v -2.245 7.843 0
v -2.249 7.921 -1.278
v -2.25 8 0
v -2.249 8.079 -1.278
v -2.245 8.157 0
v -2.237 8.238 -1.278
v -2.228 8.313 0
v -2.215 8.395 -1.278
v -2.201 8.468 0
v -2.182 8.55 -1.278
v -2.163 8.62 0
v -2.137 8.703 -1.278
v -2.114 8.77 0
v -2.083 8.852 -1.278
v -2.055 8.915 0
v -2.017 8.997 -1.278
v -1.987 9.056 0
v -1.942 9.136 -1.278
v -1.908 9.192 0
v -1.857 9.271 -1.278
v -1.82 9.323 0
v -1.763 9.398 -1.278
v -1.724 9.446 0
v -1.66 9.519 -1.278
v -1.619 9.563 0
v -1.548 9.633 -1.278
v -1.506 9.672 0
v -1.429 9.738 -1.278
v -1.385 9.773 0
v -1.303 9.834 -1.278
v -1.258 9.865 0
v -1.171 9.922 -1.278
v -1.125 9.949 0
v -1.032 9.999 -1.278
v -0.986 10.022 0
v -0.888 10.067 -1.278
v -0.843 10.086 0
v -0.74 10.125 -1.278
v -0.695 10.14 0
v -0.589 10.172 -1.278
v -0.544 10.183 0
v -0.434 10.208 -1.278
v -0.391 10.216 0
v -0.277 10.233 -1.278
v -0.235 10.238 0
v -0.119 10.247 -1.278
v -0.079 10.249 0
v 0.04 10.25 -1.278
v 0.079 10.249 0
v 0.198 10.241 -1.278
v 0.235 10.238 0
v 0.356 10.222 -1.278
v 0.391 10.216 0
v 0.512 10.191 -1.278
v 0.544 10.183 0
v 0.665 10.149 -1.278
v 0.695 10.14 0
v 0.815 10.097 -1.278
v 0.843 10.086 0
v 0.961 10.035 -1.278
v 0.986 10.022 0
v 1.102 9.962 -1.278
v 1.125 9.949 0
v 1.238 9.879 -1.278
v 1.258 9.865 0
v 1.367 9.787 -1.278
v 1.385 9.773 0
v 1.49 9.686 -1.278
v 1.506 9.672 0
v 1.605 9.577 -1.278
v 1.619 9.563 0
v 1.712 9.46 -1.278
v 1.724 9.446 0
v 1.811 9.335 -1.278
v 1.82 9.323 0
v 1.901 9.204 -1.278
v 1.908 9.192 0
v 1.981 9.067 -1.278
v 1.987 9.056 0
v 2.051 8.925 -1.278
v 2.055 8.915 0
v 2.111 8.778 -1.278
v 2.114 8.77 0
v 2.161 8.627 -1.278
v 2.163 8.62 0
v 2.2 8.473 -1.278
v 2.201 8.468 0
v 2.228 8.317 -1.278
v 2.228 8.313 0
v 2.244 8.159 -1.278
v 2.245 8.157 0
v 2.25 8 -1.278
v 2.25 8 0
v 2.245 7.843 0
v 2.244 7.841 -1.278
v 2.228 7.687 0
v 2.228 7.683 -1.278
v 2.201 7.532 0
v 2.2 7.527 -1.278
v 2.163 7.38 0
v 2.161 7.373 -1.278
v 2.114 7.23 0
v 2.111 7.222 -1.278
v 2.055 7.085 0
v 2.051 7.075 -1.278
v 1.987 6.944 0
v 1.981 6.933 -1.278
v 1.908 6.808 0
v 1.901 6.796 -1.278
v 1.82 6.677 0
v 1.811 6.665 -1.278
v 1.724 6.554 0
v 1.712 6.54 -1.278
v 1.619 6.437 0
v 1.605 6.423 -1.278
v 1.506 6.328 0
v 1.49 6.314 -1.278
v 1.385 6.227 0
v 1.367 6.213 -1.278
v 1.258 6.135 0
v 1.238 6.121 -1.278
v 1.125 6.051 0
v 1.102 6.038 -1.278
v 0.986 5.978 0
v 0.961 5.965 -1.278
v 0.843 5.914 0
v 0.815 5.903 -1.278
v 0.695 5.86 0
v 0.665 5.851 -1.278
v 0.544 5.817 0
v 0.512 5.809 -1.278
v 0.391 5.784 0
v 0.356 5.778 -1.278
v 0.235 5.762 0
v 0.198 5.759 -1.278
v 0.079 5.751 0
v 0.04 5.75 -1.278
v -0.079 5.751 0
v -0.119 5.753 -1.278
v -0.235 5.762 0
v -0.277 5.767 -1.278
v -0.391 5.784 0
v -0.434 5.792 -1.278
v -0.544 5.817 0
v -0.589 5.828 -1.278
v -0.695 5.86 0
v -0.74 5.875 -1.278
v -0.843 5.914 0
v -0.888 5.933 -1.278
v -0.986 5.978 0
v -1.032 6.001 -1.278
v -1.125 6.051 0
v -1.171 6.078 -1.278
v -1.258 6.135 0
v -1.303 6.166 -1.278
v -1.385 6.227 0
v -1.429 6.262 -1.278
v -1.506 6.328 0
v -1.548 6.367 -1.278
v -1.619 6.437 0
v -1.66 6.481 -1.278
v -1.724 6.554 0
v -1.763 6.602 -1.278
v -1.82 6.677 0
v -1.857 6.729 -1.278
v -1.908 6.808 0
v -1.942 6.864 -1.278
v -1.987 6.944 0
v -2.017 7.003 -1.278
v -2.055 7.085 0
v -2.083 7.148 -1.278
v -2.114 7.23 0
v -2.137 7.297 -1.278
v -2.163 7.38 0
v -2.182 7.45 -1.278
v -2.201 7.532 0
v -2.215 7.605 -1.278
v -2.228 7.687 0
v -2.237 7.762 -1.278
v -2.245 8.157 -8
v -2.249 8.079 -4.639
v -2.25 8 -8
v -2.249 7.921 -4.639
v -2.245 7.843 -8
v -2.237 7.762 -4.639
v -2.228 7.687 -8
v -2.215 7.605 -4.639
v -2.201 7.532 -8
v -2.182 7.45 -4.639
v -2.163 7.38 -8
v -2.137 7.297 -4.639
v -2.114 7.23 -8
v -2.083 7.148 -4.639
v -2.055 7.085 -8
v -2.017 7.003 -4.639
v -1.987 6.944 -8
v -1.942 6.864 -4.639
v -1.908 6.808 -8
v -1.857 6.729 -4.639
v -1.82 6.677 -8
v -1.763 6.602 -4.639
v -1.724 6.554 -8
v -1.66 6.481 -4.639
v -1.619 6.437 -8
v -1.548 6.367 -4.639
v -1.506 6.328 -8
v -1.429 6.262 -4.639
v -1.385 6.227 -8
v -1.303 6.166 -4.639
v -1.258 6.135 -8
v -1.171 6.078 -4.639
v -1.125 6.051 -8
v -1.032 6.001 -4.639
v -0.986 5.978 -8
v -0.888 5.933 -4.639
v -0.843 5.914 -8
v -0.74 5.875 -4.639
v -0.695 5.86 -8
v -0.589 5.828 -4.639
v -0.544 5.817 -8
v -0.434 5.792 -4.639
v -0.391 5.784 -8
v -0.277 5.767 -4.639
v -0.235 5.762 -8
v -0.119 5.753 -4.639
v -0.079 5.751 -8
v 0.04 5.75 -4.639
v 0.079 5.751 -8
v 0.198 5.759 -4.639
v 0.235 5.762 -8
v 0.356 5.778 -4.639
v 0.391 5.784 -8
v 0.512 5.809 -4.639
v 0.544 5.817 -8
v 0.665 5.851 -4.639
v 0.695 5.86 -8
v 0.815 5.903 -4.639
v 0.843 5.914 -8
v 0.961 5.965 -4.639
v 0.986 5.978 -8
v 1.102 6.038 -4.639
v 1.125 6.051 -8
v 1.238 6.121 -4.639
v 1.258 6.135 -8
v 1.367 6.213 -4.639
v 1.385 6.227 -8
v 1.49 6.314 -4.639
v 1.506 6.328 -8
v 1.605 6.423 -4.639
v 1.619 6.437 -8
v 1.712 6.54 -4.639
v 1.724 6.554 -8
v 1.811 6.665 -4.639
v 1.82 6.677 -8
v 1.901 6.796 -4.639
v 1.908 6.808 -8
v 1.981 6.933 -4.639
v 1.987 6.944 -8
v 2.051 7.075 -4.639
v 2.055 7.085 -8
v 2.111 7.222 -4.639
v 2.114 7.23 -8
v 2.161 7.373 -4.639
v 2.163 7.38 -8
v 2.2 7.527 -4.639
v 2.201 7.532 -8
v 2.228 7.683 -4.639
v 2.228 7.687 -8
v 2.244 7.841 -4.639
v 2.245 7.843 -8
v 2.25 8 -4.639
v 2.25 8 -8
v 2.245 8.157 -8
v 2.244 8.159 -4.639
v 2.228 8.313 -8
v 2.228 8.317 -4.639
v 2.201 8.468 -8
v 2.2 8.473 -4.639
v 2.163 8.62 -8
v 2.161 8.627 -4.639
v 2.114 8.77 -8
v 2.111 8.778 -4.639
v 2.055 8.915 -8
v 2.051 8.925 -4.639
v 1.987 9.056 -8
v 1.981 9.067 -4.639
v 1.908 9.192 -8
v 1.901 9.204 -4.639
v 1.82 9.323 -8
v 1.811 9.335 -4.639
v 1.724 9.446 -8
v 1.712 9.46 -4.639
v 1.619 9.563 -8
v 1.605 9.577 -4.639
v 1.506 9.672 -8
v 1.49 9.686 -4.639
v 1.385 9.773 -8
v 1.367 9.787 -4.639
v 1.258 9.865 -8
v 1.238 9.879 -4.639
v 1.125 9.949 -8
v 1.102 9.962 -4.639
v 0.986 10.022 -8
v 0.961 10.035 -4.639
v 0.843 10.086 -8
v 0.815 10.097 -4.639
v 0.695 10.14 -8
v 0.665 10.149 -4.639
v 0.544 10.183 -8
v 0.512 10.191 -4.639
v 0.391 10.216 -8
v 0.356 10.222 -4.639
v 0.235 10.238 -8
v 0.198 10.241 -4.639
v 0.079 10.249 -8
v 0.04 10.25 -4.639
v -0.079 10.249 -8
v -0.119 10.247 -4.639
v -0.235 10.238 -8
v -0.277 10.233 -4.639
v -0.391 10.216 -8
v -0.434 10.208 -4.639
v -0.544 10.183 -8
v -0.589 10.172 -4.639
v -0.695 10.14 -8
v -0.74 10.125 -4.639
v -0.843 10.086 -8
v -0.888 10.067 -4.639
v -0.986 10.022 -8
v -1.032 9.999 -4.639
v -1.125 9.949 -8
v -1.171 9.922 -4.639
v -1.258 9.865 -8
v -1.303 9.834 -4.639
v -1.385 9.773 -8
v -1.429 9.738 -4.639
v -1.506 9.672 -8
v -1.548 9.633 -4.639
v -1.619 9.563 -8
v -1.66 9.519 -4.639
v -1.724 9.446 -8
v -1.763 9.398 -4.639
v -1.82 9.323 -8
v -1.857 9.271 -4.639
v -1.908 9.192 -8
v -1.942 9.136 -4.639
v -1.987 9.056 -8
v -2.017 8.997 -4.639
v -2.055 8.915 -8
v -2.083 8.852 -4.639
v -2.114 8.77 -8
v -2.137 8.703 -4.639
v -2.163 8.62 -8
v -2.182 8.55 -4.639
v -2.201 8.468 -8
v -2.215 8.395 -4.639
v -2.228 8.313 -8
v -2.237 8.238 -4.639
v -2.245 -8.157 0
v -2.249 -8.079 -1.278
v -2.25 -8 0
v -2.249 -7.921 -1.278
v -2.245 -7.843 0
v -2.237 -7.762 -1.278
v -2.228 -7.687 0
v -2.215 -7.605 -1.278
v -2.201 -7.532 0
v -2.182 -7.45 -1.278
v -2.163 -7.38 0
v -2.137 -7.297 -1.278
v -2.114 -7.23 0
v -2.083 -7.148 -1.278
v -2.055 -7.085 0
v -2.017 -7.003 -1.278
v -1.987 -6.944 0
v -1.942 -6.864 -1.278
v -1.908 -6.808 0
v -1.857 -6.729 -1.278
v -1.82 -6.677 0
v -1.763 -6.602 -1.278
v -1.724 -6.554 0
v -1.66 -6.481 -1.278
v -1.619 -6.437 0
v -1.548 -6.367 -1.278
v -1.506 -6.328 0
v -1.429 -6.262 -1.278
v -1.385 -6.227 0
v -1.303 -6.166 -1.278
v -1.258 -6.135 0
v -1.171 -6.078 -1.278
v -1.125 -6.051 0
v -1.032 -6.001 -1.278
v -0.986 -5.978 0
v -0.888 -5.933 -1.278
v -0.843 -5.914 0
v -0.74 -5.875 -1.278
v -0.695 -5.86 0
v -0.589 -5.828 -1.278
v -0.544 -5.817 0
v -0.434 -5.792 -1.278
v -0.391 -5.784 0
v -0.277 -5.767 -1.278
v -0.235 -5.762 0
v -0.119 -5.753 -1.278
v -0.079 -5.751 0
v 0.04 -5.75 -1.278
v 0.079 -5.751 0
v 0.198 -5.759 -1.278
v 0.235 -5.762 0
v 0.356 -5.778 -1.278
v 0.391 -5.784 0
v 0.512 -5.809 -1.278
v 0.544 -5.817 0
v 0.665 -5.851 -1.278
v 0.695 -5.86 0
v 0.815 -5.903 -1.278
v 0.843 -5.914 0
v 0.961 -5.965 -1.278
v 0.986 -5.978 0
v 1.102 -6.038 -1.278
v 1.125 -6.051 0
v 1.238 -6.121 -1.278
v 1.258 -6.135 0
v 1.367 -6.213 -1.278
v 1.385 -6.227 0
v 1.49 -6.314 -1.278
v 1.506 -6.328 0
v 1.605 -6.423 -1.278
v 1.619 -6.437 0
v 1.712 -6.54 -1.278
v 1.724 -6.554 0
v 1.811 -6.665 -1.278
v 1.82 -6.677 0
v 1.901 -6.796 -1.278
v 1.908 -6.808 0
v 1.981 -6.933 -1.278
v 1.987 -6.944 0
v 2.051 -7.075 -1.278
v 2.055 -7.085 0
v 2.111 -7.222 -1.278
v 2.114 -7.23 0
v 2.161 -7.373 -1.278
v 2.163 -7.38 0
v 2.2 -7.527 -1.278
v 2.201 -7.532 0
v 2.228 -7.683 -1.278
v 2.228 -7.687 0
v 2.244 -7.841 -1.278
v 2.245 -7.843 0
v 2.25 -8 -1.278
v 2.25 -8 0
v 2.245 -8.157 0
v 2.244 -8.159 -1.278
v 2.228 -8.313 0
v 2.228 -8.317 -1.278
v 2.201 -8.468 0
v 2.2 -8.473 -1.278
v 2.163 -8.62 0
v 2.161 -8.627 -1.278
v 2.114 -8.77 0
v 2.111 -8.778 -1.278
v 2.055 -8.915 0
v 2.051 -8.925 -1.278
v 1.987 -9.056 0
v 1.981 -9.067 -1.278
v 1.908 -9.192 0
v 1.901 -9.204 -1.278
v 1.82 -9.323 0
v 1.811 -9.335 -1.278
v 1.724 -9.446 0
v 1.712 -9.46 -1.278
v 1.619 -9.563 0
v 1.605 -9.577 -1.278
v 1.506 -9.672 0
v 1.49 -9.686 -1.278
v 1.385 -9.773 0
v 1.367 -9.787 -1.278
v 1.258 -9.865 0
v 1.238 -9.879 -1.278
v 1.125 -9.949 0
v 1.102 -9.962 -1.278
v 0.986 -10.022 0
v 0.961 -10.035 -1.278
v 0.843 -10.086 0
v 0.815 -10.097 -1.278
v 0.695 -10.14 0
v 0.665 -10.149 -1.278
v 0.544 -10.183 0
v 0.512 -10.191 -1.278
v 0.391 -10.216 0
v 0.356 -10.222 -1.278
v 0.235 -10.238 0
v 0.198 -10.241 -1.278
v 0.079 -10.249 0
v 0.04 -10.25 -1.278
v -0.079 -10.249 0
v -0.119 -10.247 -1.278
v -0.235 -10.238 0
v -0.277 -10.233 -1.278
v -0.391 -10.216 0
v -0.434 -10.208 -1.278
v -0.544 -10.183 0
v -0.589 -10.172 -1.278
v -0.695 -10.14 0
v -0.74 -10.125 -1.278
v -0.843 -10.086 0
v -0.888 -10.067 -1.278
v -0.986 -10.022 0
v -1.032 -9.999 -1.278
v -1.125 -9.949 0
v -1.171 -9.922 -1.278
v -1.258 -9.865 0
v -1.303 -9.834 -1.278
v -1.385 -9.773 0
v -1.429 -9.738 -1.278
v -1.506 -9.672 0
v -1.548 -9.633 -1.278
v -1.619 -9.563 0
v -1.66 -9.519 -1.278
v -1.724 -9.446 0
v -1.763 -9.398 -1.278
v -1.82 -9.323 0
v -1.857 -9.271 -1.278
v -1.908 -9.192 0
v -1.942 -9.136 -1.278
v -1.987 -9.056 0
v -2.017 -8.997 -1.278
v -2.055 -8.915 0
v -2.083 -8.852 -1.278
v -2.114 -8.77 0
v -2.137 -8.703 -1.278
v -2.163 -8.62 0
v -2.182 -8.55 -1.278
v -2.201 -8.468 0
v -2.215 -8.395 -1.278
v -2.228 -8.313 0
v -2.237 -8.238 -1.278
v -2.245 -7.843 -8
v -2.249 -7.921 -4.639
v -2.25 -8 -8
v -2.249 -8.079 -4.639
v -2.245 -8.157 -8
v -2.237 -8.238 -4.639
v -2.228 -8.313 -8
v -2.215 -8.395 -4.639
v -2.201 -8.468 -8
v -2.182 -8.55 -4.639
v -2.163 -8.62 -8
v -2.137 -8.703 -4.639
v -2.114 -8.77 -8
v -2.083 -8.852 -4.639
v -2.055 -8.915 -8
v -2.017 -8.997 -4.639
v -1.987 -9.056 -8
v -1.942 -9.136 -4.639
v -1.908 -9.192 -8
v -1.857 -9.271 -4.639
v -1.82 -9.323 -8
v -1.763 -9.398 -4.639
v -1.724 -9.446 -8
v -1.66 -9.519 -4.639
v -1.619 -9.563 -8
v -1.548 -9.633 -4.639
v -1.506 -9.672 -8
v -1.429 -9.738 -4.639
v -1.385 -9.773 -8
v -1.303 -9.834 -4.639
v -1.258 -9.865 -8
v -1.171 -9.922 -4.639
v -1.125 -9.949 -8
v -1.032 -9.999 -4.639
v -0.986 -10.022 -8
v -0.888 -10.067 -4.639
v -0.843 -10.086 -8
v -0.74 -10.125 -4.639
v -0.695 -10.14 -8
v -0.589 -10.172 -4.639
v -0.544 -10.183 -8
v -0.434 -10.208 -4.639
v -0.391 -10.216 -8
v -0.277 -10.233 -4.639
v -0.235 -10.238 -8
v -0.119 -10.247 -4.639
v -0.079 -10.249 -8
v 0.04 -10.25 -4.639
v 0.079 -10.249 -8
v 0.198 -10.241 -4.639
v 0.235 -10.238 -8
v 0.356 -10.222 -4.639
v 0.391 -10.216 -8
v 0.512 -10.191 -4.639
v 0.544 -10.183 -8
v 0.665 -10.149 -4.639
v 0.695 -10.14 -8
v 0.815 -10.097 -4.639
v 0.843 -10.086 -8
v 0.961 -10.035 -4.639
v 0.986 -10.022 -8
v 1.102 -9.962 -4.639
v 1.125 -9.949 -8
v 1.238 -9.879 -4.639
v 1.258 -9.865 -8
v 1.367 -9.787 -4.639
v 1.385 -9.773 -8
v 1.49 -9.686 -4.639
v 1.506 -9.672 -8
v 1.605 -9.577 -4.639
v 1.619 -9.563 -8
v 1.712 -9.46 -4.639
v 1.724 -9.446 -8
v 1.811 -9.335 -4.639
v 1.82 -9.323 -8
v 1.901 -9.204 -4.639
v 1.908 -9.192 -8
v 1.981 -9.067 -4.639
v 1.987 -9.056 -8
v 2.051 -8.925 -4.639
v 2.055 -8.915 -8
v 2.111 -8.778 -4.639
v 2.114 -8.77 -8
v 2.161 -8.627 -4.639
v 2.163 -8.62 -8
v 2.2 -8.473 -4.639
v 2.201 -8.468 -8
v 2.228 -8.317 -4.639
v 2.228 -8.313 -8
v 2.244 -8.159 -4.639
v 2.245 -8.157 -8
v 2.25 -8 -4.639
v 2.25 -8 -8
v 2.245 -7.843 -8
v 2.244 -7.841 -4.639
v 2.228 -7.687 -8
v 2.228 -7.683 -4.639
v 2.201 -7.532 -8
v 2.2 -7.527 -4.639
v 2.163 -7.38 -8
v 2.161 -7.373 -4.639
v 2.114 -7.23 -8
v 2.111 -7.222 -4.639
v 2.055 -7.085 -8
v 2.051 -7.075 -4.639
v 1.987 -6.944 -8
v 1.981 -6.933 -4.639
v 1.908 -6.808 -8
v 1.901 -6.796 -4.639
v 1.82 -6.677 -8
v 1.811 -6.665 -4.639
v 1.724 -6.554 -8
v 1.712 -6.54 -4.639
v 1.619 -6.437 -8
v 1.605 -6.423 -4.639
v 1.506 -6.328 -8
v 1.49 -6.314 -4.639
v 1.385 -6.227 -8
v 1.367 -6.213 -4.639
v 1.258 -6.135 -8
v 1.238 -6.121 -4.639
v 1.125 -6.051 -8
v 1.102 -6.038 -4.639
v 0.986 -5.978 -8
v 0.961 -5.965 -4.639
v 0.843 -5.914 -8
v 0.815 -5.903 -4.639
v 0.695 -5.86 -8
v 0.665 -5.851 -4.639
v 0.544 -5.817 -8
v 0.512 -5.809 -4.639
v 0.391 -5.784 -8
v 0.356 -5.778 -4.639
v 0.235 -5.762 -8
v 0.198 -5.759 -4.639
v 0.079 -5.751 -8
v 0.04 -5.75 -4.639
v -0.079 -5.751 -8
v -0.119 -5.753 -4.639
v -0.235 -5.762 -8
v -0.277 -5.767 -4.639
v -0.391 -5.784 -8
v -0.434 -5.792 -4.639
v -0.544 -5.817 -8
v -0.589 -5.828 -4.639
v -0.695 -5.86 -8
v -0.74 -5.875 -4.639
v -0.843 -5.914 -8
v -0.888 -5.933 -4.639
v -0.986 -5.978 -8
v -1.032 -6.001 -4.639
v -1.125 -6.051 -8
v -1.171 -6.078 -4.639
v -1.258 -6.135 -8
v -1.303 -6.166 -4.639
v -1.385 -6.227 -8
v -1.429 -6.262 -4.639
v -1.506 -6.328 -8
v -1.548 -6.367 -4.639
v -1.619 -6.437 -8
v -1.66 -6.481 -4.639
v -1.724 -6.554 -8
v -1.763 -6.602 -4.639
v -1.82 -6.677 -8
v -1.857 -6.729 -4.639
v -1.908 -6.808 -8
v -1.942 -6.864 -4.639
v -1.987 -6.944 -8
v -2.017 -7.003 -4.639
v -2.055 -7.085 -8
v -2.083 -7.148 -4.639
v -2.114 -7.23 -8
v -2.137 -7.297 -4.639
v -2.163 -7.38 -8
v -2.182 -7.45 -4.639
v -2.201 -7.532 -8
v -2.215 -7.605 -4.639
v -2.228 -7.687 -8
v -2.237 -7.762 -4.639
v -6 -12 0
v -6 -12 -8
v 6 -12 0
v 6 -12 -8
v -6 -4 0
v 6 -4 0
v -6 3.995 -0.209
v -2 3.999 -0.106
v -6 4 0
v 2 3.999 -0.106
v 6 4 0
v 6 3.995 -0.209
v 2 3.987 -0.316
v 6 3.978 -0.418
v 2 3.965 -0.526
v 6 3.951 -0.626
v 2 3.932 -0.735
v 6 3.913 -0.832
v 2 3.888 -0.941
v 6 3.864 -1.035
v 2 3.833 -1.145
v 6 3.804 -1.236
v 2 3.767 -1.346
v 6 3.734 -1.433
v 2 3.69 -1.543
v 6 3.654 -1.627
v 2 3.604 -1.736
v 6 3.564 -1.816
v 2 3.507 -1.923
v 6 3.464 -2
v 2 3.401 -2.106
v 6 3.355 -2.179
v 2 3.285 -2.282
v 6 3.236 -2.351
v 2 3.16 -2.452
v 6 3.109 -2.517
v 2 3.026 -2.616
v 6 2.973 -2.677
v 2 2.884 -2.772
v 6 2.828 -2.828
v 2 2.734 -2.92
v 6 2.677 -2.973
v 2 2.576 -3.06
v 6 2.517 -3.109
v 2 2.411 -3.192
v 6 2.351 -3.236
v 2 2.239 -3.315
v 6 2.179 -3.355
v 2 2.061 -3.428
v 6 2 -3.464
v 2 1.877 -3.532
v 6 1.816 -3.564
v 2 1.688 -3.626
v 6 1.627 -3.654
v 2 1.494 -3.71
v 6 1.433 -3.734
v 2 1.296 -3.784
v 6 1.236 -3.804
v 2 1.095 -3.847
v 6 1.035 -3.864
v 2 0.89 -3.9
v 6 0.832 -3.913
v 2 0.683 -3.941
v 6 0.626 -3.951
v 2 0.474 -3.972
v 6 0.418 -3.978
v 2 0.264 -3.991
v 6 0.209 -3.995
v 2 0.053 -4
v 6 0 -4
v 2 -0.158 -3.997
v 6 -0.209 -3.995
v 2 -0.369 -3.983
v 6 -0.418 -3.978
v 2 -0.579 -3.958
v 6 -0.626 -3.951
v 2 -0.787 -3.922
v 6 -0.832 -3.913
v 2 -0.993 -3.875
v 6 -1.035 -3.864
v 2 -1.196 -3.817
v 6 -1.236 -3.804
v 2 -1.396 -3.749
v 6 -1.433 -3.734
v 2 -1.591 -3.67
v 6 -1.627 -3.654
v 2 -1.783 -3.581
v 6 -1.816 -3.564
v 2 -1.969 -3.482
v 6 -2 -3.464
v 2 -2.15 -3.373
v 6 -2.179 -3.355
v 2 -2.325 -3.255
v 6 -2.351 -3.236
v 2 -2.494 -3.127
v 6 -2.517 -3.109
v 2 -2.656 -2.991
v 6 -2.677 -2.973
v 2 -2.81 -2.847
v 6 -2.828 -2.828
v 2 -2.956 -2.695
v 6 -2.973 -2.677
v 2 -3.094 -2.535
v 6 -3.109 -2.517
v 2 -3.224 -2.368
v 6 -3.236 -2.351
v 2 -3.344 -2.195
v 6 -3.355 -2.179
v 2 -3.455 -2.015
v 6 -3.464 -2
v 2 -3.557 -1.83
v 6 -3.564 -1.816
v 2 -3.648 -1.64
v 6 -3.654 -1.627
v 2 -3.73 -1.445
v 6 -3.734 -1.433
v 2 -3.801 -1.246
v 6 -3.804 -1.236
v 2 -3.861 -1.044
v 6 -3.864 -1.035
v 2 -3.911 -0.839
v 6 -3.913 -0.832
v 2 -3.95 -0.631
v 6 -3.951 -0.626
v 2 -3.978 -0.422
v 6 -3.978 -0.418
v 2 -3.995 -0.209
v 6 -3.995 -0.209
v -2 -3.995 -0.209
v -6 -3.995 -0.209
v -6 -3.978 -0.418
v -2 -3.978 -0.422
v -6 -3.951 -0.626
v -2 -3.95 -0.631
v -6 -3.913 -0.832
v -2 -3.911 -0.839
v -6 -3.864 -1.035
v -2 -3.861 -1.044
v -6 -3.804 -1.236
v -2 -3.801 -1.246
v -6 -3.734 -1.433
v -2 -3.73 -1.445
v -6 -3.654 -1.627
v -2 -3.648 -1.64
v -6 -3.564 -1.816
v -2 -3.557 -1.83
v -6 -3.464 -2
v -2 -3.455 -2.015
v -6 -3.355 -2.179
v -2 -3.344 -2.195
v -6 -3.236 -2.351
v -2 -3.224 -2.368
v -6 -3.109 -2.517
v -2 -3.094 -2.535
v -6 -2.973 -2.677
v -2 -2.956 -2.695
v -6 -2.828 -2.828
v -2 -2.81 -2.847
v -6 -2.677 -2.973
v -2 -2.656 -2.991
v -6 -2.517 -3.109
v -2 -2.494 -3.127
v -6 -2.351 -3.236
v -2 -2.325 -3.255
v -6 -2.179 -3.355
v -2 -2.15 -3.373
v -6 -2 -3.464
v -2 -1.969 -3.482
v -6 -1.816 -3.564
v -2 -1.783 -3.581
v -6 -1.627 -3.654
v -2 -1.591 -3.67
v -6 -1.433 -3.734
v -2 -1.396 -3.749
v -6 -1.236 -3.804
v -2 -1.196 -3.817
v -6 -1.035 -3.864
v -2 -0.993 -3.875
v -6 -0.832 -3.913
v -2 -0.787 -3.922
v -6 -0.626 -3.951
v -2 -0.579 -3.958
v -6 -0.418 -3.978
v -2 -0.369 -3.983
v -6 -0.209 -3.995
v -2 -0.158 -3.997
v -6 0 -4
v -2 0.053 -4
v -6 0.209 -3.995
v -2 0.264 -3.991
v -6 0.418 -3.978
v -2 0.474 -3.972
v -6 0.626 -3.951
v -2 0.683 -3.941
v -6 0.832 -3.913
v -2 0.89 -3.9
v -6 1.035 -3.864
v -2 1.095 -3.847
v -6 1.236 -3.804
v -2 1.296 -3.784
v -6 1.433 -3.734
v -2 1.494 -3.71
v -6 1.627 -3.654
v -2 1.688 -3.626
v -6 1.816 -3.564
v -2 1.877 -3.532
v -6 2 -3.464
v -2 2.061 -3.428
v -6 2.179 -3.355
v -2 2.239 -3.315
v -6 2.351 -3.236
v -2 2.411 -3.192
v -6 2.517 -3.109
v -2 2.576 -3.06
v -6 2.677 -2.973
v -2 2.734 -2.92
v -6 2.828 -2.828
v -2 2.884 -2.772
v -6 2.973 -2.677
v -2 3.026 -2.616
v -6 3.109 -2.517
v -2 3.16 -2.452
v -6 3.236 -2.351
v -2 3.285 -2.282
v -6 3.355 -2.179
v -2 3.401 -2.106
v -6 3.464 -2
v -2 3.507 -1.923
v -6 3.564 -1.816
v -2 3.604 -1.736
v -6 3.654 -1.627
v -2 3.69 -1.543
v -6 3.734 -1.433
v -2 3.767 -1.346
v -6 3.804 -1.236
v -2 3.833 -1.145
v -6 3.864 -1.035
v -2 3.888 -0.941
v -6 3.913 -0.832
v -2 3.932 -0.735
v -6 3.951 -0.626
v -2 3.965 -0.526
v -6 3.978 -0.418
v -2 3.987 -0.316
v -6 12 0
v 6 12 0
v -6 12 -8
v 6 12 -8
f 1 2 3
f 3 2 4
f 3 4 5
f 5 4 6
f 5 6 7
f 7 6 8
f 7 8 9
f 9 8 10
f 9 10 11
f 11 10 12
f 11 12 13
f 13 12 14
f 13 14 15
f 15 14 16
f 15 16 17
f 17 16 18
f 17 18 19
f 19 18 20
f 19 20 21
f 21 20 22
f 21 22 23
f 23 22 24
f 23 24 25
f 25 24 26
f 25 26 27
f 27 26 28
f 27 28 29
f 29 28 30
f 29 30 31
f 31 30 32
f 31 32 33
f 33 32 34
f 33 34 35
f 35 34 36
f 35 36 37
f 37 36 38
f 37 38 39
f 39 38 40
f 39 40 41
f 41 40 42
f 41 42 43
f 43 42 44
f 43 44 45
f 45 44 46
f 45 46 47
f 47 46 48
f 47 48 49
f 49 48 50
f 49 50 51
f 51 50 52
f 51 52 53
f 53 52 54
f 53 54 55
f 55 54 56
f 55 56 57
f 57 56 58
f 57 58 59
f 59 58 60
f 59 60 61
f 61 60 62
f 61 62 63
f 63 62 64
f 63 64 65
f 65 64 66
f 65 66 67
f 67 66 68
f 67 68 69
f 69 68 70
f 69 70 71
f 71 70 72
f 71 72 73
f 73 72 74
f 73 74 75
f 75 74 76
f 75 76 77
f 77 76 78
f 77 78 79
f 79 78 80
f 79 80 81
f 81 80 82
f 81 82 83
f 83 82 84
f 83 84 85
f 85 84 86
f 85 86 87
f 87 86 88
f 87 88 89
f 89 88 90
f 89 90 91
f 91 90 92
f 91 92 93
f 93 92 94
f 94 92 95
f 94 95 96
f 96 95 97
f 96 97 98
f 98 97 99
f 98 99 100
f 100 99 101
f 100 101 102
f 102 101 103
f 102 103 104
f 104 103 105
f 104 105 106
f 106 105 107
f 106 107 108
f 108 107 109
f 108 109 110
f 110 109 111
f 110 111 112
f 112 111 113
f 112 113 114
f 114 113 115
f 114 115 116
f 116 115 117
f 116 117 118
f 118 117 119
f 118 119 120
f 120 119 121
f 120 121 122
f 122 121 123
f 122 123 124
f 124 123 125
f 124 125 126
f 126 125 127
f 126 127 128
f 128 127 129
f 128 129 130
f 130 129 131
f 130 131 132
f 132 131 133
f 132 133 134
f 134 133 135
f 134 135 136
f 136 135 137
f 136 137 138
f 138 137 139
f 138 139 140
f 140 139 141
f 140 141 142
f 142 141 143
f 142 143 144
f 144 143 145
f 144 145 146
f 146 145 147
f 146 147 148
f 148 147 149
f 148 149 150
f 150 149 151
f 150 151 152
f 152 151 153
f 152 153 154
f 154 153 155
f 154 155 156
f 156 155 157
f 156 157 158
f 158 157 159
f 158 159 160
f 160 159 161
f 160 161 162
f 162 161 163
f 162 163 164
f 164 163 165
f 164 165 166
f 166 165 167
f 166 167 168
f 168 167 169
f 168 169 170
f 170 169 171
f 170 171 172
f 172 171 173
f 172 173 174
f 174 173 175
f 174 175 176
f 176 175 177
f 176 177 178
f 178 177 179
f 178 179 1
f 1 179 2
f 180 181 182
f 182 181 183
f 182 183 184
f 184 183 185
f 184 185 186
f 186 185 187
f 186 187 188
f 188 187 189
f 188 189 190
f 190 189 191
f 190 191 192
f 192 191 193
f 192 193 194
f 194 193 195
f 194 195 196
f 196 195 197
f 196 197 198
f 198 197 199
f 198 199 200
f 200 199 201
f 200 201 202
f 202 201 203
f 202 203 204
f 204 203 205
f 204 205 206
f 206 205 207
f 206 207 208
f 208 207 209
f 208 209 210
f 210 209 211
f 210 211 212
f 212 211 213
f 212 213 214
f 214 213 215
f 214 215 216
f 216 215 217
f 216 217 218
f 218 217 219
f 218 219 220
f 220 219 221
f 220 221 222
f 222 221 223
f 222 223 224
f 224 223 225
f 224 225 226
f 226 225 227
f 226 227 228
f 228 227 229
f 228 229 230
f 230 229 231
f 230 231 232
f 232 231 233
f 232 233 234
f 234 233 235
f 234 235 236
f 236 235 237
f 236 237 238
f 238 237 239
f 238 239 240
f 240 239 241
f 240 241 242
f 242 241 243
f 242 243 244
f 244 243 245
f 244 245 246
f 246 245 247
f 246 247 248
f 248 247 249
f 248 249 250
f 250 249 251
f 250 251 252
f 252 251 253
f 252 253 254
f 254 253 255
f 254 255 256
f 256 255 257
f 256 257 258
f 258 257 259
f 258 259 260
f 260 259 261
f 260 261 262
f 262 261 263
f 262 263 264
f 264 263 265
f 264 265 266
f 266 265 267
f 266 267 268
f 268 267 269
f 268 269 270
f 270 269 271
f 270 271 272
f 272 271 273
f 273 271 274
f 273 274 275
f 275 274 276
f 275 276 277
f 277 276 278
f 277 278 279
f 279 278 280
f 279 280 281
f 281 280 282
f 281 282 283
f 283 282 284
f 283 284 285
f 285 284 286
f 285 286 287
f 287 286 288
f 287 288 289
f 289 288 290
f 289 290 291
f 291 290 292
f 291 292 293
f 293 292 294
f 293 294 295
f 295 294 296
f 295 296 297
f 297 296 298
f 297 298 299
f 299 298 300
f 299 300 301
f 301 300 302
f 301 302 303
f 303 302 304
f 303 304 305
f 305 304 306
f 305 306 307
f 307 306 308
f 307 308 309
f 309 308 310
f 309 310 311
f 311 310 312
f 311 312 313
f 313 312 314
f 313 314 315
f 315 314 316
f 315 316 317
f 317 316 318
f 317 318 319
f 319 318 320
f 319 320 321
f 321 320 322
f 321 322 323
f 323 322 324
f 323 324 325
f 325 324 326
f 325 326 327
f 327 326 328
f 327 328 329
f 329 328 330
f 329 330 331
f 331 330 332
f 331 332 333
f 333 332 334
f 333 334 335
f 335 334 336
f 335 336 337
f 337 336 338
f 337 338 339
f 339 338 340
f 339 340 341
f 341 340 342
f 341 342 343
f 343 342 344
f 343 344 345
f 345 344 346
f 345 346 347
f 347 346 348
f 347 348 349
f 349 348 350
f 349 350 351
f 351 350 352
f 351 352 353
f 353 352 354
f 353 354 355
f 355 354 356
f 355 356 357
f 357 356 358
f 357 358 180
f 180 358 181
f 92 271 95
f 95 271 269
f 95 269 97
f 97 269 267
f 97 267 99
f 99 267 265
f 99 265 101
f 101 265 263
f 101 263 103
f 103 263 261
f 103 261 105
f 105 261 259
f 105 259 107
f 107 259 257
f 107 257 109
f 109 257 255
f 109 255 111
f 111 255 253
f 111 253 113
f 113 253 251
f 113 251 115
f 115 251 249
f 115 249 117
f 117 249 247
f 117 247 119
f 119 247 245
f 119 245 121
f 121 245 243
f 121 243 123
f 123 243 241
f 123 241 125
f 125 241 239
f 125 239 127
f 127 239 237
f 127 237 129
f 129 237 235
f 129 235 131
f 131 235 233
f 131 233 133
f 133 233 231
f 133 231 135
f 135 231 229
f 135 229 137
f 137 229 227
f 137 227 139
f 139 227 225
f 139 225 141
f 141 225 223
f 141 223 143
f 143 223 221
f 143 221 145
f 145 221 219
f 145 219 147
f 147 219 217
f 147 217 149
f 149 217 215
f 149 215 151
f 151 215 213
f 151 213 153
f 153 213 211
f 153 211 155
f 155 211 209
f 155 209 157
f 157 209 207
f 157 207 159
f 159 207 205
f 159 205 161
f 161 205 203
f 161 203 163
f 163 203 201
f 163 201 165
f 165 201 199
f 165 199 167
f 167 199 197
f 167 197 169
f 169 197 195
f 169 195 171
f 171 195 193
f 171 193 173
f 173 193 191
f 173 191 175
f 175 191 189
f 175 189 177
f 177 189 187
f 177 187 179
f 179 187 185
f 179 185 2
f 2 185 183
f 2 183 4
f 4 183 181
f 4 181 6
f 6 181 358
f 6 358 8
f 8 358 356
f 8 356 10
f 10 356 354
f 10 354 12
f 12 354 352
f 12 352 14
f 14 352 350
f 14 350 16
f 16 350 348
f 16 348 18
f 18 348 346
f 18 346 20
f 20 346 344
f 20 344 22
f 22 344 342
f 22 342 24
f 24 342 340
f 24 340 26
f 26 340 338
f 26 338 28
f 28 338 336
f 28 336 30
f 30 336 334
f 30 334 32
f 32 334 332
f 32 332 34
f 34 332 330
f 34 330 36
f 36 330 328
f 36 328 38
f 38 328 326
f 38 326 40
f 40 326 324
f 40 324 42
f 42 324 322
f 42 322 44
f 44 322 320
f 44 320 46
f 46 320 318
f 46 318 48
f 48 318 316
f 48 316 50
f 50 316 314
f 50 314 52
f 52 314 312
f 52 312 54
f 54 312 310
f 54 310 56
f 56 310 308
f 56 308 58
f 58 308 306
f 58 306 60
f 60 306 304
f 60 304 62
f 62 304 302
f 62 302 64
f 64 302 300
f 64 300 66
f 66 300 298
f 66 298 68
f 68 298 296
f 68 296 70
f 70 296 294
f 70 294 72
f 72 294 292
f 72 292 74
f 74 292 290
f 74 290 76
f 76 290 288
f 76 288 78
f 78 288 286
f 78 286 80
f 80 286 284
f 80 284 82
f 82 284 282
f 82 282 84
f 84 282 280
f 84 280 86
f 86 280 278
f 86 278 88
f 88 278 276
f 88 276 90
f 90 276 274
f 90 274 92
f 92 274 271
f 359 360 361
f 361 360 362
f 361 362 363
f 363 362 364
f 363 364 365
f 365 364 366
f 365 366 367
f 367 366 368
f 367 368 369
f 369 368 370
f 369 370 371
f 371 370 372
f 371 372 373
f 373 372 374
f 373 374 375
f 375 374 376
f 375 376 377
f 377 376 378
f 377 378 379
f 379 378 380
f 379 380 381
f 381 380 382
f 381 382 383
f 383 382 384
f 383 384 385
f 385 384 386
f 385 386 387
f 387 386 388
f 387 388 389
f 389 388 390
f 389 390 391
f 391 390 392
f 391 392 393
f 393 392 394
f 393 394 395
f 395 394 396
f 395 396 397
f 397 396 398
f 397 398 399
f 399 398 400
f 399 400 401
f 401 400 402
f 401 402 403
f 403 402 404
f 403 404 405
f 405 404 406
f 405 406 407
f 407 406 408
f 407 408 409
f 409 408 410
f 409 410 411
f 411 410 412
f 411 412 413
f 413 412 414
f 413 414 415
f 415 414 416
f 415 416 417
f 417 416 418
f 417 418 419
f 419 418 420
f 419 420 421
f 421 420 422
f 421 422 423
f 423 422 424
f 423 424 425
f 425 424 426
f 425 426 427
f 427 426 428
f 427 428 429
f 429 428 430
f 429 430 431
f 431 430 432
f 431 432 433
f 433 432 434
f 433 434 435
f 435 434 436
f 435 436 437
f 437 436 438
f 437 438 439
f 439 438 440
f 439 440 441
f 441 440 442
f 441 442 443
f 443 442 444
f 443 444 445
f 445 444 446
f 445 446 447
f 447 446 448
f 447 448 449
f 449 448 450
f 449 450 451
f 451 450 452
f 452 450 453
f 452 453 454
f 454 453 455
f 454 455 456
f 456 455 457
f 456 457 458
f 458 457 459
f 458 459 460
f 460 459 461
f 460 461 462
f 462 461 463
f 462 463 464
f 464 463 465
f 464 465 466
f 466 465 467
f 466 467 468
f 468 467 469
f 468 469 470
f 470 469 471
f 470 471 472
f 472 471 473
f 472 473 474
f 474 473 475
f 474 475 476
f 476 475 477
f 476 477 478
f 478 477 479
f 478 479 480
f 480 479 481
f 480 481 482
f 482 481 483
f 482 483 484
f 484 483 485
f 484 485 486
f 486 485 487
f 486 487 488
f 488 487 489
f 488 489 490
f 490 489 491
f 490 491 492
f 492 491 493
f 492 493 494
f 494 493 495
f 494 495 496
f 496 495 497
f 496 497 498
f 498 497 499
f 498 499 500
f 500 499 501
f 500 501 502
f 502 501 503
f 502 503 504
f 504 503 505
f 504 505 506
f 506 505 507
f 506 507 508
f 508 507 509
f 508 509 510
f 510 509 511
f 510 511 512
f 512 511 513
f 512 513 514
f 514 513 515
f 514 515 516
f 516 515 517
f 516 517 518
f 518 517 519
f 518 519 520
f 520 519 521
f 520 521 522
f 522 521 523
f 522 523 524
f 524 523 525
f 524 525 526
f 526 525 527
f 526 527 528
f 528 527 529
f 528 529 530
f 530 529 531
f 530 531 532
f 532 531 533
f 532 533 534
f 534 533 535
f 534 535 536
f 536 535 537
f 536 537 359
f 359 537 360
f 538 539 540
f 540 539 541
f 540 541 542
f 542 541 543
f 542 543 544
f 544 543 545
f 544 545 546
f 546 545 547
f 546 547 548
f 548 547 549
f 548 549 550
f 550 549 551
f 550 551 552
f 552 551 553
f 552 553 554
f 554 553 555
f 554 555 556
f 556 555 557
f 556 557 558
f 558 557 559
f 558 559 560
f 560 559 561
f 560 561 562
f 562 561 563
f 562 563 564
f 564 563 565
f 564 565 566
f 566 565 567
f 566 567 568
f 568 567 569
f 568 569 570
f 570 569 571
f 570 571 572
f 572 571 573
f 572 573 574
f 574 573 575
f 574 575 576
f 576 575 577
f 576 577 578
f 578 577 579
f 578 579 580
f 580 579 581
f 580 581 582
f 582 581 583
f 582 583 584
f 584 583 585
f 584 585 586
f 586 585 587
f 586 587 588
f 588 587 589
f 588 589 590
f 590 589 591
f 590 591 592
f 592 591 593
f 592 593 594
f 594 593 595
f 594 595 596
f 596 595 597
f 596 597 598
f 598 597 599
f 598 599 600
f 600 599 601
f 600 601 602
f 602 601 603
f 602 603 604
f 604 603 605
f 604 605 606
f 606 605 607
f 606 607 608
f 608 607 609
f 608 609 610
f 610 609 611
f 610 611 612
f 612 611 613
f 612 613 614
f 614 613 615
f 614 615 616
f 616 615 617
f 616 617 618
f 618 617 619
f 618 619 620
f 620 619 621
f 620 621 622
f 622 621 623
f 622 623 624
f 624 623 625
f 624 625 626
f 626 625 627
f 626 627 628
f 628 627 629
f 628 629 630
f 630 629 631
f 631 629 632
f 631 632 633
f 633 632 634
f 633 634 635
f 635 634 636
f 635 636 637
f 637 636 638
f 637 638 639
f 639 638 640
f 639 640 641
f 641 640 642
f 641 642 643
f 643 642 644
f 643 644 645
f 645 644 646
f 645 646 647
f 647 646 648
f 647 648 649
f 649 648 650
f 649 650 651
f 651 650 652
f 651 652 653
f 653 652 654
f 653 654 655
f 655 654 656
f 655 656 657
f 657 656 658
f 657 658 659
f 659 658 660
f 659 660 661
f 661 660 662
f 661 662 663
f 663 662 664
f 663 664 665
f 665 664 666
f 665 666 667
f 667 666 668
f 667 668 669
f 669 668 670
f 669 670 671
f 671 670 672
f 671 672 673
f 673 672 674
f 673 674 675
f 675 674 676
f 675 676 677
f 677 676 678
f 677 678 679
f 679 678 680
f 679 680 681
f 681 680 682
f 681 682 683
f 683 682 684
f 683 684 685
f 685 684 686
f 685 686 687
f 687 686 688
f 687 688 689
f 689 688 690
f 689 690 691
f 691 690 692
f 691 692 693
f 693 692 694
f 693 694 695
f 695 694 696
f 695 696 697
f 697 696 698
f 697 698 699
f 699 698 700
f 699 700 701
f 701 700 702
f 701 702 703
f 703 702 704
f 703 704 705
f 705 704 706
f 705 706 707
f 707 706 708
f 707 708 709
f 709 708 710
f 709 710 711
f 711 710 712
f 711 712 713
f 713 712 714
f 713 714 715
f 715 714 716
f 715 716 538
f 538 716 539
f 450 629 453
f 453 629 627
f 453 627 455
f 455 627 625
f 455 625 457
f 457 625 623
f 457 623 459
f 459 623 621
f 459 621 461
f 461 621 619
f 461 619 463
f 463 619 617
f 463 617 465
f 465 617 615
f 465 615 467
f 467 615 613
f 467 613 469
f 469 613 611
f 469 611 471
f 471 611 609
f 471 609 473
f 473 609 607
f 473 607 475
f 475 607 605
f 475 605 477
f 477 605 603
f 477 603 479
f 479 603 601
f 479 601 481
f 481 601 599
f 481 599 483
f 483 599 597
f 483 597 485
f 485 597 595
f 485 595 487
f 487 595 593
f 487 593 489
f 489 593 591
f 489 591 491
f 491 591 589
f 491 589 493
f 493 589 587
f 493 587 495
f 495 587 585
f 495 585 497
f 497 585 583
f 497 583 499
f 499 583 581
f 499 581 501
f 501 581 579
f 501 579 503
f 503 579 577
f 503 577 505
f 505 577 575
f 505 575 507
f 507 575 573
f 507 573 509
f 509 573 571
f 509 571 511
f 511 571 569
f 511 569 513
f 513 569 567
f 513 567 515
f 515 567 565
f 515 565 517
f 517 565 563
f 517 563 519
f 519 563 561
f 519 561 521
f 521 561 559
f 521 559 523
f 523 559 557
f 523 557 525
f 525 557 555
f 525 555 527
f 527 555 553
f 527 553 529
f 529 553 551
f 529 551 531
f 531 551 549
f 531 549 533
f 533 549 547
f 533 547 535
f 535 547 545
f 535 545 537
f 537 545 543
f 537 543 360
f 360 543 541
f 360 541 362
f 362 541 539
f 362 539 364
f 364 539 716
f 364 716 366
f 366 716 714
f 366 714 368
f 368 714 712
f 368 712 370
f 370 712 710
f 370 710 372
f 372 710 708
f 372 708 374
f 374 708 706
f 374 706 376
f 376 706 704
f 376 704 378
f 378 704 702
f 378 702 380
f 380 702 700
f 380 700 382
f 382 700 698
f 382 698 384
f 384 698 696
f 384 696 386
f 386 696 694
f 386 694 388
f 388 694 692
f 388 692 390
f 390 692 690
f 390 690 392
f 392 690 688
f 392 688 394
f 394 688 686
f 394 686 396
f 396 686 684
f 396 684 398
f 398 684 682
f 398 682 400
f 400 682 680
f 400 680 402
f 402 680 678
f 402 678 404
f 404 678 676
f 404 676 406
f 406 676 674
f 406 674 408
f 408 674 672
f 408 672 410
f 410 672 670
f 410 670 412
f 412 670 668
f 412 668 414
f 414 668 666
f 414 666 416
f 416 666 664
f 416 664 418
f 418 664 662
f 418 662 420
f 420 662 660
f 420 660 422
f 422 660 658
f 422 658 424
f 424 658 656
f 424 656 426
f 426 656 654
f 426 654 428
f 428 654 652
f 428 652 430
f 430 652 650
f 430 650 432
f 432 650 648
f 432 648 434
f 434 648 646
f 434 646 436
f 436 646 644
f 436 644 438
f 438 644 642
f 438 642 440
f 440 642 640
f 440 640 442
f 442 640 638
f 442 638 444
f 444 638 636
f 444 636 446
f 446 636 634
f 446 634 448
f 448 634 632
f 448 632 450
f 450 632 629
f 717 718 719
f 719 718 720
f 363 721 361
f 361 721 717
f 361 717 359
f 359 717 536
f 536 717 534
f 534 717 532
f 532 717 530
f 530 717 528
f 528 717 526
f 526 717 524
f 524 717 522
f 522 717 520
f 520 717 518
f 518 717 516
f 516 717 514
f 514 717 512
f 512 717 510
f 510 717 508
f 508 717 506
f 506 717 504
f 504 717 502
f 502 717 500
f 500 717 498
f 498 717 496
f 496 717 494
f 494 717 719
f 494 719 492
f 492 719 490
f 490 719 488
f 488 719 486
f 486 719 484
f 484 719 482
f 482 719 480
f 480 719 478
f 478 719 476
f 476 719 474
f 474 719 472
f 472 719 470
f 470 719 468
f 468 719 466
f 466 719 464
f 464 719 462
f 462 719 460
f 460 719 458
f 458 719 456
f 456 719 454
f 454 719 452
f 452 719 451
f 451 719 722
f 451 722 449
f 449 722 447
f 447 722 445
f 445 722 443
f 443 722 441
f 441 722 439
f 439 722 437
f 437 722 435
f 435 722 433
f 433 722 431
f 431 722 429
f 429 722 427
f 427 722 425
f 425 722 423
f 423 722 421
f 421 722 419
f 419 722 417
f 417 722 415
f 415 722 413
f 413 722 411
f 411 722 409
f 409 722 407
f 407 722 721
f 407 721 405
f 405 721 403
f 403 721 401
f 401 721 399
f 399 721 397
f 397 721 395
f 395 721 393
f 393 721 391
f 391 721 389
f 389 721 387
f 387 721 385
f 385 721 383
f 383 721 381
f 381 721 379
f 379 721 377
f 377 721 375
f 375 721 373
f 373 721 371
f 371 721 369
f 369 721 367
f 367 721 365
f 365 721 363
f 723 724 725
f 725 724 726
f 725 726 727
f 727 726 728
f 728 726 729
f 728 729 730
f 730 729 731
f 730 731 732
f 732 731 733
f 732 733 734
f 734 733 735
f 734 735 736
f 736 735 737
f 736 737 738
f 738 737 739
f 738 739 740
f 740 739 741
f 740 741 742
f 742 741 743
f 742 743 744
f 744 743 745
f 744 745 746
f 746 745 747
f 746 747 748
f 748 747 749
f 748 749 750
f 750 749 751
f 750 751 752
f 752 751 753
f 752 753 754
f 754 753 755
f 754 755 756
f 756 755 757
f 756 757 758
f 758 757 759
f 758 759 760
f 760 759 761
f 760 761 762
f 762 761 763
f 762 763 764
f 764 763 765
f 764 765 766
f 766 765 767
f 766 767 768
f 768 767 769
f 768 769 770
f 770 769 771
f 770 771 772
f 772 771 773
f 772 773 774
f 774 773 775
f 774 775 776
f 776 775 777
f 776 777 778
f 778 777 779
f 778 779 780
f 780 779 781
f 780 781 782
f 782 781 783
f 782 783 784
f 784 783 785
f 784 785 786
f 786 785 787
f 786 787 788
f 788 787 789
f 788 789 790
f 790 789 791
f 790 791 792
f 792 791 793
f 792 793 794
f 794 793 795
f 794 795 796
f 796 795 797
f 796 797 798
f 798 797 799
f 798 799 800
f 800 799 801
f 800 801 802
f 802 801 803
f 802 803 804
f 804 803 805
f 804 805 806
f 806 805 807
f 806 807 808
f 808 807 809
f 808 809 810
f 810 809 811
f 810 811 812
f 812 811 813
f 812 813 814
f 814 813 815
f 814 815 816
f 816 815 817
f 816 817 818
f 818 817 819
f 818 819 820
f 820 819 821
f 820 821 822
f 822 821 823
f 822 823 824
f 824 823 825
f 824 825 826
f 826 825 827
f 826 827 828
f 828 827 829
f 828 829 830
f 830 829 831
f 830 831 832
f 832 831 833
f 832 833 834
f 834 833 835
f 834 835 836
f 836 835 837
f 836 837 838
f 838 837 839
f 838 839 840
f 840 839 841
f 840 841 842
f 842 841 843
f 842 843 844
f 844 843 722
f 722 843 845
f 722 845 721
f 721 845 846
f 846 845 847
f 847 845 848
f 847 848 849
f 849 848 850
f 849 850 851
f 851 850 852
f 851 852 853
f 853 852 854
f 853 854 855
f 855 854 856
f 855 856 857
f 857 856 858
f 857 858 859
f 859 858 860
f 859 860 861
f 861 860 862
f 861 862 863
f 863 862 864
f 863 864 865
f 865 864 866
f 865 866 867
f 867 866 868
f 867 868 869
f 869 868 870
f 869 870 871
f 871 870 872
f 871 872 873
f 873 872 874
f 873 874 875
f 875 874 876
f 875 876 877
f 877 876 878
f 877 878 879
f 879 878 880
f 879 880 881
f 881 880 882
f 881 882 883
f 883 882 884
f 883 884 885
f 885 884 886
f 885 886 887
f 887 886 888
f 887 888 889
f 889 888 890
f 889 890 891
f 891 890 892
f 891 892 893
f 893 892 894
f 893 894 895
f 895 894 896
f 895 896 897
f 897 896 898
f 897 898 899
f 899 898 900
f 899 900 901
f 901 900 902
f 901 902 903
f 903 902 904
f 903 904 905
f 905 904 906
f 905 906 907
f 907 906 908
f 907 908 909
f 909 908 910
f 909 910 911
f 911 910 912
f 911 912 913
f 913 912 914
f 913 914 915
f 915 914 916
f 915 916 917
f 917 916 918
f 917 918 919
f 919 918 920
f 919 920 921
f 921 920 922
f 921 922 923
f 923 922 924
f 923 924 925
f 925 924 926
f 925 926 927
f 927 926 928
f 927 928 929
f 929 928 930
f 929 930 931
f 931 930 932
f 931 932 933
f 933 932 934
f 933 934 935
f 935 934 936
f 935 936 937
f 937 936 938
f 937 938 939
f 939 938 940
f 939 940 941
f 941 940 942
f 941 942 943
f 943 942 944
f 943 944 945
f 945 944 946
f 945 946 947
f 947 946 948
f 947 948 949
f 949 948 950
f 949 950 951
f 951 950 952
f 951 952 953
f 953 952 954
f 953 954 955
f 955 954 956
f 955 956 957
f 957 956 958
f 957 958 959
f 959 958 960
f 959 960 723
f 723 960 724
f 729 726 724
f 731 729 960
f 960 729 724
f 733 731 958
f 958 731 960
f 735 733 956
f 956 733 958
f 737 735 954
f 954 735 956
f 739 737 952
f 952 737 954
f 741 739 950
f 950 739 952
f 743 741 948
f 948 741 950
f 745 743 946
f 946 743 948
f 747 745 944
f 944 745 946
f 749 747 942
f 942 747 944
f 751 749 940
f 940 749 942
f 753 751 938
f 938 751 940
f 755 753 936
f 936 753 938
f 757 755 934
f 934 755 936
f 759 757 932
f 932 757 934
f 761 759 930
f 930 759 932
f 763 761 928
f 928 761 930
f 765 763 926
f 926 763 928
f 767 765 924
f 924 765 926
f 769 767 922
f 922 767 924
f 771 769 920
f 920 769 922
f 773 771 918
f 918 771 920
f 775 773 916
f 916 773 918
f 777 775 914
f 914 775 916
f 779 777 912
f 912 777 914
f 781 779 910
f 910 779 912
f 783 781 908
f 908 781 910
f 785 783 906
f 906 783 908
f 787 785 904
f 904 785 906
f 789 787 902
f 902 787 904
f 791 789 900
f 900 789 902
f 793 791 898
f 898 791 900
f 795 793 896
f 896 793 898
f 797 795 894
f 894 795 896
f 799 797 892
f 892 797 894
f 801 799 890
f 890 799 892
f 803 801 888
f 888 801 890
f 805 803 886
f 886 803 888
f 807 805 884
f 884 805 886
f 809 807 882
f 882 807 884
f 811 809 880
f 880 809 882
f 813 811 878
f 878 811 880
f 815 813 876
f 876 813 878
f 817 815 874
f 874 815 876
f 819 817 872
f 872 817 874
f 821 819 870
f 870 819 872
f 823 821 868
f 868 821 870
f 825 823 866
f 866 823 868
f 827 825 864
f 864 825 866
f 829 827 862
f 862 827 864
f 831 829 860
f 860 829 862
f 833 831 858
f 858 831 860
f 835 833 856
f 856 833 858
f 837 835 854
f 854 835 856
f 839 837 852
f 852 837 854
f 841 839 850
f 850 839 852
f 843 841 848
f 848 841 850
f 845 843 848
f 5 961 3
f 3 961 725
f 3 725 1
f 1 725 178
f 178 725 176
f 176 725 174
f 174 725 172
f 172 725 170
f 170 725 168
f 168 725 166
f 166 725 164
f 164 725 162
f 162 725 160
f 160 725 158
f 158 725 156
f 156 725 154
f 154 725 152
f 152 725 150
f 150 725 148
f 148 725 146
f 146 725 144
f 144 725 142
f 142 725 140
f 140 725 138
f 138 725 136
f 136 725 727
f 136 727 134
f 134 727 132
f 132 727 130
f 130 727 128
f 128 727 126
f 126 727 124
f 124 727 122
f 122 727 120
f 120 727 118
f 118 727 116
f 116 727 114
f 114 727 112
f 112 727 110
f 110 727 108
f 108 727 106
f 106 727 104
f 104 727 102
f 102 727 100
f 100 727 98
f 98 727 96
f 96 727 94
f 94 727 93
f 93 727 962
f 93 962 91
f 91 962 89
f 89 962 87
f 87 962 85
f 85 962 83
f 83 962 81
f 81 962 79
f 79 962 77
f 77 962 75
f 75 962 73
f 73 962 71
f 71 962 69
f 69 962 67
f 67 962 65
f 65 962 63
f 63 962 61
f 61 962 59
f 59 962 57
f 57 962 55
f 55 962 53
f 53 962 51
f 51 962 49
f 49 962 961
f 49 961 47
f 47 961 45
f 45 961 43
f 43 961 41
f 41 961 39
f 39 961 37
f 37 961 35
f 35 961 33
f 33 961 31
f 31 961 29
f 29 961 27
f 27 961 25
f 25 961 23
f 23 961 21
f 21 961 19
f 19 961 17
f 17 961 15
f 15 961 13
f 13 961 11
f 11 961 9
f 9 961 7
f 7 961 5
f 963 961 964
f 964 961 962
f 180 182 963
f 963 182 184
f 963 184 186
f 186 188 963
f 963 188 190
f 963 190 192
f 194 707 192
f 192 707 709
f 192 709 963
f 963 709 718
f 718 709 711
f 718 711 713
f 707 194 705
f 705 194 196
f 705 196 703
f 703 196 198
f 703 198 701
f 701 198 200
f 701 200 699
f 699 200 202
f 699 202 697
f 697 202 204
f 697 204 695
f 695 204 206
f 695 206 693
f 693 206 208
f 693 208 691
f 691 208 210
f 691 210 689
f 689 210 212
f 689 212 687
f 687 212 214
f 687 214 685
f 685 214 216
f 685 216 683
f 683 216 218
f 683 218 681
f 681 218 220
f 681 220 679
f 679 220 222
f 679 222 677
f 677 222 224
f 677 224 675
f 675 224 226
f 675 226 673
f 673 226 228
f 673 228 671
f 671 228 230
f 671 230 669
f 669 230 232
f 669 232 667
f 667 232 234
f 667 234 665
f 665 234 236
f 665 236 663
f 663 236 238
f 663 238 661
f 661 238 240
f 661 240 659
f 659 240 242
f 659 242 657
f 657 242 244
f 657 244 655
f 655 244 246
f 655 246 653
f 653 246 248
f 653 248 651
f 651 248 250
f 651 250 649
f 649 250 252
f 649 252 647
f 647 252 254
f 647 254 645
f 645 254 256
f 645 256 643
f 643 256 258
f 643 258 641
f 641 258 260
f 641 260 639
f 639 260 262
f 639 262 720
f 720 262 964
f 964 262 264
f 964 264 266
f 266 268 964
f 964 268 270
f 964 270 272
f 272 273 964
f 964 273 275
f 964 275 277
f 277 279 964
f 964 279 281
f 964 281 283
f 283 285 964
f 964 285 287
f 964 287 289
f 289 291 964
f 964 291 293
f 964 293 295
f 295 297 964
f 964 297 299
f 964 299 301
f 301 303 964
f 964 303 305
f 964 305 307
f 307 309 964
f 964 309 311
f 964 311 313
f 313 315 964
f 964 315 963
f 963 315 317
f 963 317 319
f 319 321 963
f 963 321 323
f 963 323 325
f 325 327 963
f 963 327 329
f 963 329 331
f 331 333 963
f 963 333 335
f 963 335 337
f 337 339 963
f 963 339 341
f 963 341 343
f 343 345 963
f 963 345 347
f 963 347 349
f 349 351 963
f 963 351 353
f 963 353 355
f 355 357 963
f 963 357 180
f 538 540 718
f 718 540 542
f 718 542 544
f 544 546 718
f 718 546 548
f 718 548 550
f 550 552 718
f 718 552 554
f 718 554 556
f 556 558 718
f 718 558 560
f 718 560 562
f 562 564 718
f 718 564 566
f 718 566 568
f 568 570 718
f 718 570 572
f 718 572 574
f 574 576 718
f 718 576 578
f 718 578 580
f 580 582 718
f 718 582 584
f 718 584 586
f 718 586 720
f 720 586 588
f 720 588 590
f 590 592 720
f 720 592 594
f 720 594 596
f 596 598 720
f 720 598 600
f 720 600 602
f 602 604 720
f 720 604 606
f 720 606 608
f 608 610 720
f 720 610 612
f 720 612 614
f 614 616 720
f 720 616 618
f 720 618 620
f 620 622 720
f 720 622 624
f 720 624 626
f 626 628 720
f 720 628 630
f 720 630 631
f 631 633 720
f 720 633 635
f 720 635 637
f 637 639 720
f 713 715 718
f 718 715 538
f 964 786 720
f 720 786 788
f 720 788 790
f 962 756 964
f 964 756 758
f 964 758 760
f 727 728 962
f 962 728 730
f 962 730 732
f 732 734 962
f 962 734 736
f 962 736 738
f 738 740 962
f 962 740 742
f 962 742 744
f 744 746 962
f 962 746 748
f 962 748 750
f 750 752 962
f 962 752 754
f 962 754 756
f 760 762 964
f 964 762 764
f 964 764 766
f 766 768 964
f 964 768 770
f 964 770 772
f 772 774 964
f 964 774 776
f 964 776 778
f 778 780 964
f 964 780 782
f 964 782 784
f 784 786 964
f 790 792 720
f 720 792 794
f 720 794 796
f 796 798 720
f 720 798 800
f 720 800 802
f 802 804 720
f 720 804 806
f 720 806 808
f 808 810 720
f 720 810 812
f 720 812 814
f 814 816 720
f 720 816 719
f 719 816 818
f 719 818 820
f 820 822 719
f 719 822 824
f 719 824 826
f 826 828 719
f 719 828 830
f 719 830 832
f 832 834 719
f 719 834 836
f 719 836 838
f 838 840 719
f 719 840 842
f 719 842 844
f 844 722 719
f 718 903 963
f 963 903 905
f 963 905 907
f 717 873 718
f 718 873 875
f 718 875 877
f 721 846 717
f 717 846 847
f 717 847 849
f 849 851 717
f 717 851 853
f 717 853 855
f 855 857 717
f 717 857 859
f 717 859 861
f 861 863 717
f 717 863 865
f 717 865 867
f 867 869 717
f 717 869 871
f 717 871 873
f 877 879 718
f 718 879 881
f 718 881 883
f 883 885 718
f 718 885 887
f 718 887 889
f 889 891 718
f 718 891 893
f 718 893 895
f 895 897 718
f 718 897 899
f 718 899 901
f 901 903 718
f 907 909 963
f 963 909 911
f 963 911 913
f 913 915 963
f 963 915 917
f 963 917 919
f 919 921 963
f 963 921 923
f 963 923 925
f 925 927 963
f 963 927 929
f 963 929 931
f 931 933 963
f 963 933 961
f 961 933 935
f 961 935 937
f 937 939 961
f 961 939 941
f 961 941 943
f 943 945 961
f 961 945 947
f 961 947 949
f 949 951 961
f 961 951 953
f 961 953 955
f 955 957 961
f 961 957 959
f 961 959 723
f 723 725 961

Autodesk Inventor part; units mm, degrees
ref_plane "XZ Plane" through (0, 0, 0) normal (0, 1, 0) x (-1, 0, 0)
ref_plane "XY Plane" through (0, 0, 0) normal (0, 0, 1) x (1, 0, 0)
ref_plane "Work Plane1" through (-6, 0, 0) normal (1, 0, 0) x (0, 1, 0)
sketch "Sketch1" plane through (-6, 0, 0) normal (1, 0, 0) x (0, 1, 0)
  line L0 (-12, -8) -> (12, -8)
  arc A0 (-4, 0) -> (4, 0) centre (0, 0) ccw
  line L1 (-4, 0) -> (-12, 0)
  line L2 (12, -8) -> (12, 0)
  line L3 (-12, 0) -> (-12, -8)
  line L4 (12, 0) -> (4, 0)
extrude "Extrusion1" add sketch "Sketch1" along normal blind 12
hole "Hole2" at (0, -8, -8) direction (0, 0, 1) diameter 4.5 depth 8
sketch "Sketch2" plane through (-6, -12, -8) normal (0, 0, -1) x (-1, 0, 0)
  point P0 (-6, 4)
hole "Hole1" at (0, 8, -8) direction (0, 0, 1) diameter 4.5 depth 8
sketch "Sketch3" plane through (-6, -12, -8) normal (0, 0, -1) x (-1, 0, 0)
  point P0 (-6, 20)
properties part number "Hopper Smooth Rod Clamp" material "ASA Plastic"
